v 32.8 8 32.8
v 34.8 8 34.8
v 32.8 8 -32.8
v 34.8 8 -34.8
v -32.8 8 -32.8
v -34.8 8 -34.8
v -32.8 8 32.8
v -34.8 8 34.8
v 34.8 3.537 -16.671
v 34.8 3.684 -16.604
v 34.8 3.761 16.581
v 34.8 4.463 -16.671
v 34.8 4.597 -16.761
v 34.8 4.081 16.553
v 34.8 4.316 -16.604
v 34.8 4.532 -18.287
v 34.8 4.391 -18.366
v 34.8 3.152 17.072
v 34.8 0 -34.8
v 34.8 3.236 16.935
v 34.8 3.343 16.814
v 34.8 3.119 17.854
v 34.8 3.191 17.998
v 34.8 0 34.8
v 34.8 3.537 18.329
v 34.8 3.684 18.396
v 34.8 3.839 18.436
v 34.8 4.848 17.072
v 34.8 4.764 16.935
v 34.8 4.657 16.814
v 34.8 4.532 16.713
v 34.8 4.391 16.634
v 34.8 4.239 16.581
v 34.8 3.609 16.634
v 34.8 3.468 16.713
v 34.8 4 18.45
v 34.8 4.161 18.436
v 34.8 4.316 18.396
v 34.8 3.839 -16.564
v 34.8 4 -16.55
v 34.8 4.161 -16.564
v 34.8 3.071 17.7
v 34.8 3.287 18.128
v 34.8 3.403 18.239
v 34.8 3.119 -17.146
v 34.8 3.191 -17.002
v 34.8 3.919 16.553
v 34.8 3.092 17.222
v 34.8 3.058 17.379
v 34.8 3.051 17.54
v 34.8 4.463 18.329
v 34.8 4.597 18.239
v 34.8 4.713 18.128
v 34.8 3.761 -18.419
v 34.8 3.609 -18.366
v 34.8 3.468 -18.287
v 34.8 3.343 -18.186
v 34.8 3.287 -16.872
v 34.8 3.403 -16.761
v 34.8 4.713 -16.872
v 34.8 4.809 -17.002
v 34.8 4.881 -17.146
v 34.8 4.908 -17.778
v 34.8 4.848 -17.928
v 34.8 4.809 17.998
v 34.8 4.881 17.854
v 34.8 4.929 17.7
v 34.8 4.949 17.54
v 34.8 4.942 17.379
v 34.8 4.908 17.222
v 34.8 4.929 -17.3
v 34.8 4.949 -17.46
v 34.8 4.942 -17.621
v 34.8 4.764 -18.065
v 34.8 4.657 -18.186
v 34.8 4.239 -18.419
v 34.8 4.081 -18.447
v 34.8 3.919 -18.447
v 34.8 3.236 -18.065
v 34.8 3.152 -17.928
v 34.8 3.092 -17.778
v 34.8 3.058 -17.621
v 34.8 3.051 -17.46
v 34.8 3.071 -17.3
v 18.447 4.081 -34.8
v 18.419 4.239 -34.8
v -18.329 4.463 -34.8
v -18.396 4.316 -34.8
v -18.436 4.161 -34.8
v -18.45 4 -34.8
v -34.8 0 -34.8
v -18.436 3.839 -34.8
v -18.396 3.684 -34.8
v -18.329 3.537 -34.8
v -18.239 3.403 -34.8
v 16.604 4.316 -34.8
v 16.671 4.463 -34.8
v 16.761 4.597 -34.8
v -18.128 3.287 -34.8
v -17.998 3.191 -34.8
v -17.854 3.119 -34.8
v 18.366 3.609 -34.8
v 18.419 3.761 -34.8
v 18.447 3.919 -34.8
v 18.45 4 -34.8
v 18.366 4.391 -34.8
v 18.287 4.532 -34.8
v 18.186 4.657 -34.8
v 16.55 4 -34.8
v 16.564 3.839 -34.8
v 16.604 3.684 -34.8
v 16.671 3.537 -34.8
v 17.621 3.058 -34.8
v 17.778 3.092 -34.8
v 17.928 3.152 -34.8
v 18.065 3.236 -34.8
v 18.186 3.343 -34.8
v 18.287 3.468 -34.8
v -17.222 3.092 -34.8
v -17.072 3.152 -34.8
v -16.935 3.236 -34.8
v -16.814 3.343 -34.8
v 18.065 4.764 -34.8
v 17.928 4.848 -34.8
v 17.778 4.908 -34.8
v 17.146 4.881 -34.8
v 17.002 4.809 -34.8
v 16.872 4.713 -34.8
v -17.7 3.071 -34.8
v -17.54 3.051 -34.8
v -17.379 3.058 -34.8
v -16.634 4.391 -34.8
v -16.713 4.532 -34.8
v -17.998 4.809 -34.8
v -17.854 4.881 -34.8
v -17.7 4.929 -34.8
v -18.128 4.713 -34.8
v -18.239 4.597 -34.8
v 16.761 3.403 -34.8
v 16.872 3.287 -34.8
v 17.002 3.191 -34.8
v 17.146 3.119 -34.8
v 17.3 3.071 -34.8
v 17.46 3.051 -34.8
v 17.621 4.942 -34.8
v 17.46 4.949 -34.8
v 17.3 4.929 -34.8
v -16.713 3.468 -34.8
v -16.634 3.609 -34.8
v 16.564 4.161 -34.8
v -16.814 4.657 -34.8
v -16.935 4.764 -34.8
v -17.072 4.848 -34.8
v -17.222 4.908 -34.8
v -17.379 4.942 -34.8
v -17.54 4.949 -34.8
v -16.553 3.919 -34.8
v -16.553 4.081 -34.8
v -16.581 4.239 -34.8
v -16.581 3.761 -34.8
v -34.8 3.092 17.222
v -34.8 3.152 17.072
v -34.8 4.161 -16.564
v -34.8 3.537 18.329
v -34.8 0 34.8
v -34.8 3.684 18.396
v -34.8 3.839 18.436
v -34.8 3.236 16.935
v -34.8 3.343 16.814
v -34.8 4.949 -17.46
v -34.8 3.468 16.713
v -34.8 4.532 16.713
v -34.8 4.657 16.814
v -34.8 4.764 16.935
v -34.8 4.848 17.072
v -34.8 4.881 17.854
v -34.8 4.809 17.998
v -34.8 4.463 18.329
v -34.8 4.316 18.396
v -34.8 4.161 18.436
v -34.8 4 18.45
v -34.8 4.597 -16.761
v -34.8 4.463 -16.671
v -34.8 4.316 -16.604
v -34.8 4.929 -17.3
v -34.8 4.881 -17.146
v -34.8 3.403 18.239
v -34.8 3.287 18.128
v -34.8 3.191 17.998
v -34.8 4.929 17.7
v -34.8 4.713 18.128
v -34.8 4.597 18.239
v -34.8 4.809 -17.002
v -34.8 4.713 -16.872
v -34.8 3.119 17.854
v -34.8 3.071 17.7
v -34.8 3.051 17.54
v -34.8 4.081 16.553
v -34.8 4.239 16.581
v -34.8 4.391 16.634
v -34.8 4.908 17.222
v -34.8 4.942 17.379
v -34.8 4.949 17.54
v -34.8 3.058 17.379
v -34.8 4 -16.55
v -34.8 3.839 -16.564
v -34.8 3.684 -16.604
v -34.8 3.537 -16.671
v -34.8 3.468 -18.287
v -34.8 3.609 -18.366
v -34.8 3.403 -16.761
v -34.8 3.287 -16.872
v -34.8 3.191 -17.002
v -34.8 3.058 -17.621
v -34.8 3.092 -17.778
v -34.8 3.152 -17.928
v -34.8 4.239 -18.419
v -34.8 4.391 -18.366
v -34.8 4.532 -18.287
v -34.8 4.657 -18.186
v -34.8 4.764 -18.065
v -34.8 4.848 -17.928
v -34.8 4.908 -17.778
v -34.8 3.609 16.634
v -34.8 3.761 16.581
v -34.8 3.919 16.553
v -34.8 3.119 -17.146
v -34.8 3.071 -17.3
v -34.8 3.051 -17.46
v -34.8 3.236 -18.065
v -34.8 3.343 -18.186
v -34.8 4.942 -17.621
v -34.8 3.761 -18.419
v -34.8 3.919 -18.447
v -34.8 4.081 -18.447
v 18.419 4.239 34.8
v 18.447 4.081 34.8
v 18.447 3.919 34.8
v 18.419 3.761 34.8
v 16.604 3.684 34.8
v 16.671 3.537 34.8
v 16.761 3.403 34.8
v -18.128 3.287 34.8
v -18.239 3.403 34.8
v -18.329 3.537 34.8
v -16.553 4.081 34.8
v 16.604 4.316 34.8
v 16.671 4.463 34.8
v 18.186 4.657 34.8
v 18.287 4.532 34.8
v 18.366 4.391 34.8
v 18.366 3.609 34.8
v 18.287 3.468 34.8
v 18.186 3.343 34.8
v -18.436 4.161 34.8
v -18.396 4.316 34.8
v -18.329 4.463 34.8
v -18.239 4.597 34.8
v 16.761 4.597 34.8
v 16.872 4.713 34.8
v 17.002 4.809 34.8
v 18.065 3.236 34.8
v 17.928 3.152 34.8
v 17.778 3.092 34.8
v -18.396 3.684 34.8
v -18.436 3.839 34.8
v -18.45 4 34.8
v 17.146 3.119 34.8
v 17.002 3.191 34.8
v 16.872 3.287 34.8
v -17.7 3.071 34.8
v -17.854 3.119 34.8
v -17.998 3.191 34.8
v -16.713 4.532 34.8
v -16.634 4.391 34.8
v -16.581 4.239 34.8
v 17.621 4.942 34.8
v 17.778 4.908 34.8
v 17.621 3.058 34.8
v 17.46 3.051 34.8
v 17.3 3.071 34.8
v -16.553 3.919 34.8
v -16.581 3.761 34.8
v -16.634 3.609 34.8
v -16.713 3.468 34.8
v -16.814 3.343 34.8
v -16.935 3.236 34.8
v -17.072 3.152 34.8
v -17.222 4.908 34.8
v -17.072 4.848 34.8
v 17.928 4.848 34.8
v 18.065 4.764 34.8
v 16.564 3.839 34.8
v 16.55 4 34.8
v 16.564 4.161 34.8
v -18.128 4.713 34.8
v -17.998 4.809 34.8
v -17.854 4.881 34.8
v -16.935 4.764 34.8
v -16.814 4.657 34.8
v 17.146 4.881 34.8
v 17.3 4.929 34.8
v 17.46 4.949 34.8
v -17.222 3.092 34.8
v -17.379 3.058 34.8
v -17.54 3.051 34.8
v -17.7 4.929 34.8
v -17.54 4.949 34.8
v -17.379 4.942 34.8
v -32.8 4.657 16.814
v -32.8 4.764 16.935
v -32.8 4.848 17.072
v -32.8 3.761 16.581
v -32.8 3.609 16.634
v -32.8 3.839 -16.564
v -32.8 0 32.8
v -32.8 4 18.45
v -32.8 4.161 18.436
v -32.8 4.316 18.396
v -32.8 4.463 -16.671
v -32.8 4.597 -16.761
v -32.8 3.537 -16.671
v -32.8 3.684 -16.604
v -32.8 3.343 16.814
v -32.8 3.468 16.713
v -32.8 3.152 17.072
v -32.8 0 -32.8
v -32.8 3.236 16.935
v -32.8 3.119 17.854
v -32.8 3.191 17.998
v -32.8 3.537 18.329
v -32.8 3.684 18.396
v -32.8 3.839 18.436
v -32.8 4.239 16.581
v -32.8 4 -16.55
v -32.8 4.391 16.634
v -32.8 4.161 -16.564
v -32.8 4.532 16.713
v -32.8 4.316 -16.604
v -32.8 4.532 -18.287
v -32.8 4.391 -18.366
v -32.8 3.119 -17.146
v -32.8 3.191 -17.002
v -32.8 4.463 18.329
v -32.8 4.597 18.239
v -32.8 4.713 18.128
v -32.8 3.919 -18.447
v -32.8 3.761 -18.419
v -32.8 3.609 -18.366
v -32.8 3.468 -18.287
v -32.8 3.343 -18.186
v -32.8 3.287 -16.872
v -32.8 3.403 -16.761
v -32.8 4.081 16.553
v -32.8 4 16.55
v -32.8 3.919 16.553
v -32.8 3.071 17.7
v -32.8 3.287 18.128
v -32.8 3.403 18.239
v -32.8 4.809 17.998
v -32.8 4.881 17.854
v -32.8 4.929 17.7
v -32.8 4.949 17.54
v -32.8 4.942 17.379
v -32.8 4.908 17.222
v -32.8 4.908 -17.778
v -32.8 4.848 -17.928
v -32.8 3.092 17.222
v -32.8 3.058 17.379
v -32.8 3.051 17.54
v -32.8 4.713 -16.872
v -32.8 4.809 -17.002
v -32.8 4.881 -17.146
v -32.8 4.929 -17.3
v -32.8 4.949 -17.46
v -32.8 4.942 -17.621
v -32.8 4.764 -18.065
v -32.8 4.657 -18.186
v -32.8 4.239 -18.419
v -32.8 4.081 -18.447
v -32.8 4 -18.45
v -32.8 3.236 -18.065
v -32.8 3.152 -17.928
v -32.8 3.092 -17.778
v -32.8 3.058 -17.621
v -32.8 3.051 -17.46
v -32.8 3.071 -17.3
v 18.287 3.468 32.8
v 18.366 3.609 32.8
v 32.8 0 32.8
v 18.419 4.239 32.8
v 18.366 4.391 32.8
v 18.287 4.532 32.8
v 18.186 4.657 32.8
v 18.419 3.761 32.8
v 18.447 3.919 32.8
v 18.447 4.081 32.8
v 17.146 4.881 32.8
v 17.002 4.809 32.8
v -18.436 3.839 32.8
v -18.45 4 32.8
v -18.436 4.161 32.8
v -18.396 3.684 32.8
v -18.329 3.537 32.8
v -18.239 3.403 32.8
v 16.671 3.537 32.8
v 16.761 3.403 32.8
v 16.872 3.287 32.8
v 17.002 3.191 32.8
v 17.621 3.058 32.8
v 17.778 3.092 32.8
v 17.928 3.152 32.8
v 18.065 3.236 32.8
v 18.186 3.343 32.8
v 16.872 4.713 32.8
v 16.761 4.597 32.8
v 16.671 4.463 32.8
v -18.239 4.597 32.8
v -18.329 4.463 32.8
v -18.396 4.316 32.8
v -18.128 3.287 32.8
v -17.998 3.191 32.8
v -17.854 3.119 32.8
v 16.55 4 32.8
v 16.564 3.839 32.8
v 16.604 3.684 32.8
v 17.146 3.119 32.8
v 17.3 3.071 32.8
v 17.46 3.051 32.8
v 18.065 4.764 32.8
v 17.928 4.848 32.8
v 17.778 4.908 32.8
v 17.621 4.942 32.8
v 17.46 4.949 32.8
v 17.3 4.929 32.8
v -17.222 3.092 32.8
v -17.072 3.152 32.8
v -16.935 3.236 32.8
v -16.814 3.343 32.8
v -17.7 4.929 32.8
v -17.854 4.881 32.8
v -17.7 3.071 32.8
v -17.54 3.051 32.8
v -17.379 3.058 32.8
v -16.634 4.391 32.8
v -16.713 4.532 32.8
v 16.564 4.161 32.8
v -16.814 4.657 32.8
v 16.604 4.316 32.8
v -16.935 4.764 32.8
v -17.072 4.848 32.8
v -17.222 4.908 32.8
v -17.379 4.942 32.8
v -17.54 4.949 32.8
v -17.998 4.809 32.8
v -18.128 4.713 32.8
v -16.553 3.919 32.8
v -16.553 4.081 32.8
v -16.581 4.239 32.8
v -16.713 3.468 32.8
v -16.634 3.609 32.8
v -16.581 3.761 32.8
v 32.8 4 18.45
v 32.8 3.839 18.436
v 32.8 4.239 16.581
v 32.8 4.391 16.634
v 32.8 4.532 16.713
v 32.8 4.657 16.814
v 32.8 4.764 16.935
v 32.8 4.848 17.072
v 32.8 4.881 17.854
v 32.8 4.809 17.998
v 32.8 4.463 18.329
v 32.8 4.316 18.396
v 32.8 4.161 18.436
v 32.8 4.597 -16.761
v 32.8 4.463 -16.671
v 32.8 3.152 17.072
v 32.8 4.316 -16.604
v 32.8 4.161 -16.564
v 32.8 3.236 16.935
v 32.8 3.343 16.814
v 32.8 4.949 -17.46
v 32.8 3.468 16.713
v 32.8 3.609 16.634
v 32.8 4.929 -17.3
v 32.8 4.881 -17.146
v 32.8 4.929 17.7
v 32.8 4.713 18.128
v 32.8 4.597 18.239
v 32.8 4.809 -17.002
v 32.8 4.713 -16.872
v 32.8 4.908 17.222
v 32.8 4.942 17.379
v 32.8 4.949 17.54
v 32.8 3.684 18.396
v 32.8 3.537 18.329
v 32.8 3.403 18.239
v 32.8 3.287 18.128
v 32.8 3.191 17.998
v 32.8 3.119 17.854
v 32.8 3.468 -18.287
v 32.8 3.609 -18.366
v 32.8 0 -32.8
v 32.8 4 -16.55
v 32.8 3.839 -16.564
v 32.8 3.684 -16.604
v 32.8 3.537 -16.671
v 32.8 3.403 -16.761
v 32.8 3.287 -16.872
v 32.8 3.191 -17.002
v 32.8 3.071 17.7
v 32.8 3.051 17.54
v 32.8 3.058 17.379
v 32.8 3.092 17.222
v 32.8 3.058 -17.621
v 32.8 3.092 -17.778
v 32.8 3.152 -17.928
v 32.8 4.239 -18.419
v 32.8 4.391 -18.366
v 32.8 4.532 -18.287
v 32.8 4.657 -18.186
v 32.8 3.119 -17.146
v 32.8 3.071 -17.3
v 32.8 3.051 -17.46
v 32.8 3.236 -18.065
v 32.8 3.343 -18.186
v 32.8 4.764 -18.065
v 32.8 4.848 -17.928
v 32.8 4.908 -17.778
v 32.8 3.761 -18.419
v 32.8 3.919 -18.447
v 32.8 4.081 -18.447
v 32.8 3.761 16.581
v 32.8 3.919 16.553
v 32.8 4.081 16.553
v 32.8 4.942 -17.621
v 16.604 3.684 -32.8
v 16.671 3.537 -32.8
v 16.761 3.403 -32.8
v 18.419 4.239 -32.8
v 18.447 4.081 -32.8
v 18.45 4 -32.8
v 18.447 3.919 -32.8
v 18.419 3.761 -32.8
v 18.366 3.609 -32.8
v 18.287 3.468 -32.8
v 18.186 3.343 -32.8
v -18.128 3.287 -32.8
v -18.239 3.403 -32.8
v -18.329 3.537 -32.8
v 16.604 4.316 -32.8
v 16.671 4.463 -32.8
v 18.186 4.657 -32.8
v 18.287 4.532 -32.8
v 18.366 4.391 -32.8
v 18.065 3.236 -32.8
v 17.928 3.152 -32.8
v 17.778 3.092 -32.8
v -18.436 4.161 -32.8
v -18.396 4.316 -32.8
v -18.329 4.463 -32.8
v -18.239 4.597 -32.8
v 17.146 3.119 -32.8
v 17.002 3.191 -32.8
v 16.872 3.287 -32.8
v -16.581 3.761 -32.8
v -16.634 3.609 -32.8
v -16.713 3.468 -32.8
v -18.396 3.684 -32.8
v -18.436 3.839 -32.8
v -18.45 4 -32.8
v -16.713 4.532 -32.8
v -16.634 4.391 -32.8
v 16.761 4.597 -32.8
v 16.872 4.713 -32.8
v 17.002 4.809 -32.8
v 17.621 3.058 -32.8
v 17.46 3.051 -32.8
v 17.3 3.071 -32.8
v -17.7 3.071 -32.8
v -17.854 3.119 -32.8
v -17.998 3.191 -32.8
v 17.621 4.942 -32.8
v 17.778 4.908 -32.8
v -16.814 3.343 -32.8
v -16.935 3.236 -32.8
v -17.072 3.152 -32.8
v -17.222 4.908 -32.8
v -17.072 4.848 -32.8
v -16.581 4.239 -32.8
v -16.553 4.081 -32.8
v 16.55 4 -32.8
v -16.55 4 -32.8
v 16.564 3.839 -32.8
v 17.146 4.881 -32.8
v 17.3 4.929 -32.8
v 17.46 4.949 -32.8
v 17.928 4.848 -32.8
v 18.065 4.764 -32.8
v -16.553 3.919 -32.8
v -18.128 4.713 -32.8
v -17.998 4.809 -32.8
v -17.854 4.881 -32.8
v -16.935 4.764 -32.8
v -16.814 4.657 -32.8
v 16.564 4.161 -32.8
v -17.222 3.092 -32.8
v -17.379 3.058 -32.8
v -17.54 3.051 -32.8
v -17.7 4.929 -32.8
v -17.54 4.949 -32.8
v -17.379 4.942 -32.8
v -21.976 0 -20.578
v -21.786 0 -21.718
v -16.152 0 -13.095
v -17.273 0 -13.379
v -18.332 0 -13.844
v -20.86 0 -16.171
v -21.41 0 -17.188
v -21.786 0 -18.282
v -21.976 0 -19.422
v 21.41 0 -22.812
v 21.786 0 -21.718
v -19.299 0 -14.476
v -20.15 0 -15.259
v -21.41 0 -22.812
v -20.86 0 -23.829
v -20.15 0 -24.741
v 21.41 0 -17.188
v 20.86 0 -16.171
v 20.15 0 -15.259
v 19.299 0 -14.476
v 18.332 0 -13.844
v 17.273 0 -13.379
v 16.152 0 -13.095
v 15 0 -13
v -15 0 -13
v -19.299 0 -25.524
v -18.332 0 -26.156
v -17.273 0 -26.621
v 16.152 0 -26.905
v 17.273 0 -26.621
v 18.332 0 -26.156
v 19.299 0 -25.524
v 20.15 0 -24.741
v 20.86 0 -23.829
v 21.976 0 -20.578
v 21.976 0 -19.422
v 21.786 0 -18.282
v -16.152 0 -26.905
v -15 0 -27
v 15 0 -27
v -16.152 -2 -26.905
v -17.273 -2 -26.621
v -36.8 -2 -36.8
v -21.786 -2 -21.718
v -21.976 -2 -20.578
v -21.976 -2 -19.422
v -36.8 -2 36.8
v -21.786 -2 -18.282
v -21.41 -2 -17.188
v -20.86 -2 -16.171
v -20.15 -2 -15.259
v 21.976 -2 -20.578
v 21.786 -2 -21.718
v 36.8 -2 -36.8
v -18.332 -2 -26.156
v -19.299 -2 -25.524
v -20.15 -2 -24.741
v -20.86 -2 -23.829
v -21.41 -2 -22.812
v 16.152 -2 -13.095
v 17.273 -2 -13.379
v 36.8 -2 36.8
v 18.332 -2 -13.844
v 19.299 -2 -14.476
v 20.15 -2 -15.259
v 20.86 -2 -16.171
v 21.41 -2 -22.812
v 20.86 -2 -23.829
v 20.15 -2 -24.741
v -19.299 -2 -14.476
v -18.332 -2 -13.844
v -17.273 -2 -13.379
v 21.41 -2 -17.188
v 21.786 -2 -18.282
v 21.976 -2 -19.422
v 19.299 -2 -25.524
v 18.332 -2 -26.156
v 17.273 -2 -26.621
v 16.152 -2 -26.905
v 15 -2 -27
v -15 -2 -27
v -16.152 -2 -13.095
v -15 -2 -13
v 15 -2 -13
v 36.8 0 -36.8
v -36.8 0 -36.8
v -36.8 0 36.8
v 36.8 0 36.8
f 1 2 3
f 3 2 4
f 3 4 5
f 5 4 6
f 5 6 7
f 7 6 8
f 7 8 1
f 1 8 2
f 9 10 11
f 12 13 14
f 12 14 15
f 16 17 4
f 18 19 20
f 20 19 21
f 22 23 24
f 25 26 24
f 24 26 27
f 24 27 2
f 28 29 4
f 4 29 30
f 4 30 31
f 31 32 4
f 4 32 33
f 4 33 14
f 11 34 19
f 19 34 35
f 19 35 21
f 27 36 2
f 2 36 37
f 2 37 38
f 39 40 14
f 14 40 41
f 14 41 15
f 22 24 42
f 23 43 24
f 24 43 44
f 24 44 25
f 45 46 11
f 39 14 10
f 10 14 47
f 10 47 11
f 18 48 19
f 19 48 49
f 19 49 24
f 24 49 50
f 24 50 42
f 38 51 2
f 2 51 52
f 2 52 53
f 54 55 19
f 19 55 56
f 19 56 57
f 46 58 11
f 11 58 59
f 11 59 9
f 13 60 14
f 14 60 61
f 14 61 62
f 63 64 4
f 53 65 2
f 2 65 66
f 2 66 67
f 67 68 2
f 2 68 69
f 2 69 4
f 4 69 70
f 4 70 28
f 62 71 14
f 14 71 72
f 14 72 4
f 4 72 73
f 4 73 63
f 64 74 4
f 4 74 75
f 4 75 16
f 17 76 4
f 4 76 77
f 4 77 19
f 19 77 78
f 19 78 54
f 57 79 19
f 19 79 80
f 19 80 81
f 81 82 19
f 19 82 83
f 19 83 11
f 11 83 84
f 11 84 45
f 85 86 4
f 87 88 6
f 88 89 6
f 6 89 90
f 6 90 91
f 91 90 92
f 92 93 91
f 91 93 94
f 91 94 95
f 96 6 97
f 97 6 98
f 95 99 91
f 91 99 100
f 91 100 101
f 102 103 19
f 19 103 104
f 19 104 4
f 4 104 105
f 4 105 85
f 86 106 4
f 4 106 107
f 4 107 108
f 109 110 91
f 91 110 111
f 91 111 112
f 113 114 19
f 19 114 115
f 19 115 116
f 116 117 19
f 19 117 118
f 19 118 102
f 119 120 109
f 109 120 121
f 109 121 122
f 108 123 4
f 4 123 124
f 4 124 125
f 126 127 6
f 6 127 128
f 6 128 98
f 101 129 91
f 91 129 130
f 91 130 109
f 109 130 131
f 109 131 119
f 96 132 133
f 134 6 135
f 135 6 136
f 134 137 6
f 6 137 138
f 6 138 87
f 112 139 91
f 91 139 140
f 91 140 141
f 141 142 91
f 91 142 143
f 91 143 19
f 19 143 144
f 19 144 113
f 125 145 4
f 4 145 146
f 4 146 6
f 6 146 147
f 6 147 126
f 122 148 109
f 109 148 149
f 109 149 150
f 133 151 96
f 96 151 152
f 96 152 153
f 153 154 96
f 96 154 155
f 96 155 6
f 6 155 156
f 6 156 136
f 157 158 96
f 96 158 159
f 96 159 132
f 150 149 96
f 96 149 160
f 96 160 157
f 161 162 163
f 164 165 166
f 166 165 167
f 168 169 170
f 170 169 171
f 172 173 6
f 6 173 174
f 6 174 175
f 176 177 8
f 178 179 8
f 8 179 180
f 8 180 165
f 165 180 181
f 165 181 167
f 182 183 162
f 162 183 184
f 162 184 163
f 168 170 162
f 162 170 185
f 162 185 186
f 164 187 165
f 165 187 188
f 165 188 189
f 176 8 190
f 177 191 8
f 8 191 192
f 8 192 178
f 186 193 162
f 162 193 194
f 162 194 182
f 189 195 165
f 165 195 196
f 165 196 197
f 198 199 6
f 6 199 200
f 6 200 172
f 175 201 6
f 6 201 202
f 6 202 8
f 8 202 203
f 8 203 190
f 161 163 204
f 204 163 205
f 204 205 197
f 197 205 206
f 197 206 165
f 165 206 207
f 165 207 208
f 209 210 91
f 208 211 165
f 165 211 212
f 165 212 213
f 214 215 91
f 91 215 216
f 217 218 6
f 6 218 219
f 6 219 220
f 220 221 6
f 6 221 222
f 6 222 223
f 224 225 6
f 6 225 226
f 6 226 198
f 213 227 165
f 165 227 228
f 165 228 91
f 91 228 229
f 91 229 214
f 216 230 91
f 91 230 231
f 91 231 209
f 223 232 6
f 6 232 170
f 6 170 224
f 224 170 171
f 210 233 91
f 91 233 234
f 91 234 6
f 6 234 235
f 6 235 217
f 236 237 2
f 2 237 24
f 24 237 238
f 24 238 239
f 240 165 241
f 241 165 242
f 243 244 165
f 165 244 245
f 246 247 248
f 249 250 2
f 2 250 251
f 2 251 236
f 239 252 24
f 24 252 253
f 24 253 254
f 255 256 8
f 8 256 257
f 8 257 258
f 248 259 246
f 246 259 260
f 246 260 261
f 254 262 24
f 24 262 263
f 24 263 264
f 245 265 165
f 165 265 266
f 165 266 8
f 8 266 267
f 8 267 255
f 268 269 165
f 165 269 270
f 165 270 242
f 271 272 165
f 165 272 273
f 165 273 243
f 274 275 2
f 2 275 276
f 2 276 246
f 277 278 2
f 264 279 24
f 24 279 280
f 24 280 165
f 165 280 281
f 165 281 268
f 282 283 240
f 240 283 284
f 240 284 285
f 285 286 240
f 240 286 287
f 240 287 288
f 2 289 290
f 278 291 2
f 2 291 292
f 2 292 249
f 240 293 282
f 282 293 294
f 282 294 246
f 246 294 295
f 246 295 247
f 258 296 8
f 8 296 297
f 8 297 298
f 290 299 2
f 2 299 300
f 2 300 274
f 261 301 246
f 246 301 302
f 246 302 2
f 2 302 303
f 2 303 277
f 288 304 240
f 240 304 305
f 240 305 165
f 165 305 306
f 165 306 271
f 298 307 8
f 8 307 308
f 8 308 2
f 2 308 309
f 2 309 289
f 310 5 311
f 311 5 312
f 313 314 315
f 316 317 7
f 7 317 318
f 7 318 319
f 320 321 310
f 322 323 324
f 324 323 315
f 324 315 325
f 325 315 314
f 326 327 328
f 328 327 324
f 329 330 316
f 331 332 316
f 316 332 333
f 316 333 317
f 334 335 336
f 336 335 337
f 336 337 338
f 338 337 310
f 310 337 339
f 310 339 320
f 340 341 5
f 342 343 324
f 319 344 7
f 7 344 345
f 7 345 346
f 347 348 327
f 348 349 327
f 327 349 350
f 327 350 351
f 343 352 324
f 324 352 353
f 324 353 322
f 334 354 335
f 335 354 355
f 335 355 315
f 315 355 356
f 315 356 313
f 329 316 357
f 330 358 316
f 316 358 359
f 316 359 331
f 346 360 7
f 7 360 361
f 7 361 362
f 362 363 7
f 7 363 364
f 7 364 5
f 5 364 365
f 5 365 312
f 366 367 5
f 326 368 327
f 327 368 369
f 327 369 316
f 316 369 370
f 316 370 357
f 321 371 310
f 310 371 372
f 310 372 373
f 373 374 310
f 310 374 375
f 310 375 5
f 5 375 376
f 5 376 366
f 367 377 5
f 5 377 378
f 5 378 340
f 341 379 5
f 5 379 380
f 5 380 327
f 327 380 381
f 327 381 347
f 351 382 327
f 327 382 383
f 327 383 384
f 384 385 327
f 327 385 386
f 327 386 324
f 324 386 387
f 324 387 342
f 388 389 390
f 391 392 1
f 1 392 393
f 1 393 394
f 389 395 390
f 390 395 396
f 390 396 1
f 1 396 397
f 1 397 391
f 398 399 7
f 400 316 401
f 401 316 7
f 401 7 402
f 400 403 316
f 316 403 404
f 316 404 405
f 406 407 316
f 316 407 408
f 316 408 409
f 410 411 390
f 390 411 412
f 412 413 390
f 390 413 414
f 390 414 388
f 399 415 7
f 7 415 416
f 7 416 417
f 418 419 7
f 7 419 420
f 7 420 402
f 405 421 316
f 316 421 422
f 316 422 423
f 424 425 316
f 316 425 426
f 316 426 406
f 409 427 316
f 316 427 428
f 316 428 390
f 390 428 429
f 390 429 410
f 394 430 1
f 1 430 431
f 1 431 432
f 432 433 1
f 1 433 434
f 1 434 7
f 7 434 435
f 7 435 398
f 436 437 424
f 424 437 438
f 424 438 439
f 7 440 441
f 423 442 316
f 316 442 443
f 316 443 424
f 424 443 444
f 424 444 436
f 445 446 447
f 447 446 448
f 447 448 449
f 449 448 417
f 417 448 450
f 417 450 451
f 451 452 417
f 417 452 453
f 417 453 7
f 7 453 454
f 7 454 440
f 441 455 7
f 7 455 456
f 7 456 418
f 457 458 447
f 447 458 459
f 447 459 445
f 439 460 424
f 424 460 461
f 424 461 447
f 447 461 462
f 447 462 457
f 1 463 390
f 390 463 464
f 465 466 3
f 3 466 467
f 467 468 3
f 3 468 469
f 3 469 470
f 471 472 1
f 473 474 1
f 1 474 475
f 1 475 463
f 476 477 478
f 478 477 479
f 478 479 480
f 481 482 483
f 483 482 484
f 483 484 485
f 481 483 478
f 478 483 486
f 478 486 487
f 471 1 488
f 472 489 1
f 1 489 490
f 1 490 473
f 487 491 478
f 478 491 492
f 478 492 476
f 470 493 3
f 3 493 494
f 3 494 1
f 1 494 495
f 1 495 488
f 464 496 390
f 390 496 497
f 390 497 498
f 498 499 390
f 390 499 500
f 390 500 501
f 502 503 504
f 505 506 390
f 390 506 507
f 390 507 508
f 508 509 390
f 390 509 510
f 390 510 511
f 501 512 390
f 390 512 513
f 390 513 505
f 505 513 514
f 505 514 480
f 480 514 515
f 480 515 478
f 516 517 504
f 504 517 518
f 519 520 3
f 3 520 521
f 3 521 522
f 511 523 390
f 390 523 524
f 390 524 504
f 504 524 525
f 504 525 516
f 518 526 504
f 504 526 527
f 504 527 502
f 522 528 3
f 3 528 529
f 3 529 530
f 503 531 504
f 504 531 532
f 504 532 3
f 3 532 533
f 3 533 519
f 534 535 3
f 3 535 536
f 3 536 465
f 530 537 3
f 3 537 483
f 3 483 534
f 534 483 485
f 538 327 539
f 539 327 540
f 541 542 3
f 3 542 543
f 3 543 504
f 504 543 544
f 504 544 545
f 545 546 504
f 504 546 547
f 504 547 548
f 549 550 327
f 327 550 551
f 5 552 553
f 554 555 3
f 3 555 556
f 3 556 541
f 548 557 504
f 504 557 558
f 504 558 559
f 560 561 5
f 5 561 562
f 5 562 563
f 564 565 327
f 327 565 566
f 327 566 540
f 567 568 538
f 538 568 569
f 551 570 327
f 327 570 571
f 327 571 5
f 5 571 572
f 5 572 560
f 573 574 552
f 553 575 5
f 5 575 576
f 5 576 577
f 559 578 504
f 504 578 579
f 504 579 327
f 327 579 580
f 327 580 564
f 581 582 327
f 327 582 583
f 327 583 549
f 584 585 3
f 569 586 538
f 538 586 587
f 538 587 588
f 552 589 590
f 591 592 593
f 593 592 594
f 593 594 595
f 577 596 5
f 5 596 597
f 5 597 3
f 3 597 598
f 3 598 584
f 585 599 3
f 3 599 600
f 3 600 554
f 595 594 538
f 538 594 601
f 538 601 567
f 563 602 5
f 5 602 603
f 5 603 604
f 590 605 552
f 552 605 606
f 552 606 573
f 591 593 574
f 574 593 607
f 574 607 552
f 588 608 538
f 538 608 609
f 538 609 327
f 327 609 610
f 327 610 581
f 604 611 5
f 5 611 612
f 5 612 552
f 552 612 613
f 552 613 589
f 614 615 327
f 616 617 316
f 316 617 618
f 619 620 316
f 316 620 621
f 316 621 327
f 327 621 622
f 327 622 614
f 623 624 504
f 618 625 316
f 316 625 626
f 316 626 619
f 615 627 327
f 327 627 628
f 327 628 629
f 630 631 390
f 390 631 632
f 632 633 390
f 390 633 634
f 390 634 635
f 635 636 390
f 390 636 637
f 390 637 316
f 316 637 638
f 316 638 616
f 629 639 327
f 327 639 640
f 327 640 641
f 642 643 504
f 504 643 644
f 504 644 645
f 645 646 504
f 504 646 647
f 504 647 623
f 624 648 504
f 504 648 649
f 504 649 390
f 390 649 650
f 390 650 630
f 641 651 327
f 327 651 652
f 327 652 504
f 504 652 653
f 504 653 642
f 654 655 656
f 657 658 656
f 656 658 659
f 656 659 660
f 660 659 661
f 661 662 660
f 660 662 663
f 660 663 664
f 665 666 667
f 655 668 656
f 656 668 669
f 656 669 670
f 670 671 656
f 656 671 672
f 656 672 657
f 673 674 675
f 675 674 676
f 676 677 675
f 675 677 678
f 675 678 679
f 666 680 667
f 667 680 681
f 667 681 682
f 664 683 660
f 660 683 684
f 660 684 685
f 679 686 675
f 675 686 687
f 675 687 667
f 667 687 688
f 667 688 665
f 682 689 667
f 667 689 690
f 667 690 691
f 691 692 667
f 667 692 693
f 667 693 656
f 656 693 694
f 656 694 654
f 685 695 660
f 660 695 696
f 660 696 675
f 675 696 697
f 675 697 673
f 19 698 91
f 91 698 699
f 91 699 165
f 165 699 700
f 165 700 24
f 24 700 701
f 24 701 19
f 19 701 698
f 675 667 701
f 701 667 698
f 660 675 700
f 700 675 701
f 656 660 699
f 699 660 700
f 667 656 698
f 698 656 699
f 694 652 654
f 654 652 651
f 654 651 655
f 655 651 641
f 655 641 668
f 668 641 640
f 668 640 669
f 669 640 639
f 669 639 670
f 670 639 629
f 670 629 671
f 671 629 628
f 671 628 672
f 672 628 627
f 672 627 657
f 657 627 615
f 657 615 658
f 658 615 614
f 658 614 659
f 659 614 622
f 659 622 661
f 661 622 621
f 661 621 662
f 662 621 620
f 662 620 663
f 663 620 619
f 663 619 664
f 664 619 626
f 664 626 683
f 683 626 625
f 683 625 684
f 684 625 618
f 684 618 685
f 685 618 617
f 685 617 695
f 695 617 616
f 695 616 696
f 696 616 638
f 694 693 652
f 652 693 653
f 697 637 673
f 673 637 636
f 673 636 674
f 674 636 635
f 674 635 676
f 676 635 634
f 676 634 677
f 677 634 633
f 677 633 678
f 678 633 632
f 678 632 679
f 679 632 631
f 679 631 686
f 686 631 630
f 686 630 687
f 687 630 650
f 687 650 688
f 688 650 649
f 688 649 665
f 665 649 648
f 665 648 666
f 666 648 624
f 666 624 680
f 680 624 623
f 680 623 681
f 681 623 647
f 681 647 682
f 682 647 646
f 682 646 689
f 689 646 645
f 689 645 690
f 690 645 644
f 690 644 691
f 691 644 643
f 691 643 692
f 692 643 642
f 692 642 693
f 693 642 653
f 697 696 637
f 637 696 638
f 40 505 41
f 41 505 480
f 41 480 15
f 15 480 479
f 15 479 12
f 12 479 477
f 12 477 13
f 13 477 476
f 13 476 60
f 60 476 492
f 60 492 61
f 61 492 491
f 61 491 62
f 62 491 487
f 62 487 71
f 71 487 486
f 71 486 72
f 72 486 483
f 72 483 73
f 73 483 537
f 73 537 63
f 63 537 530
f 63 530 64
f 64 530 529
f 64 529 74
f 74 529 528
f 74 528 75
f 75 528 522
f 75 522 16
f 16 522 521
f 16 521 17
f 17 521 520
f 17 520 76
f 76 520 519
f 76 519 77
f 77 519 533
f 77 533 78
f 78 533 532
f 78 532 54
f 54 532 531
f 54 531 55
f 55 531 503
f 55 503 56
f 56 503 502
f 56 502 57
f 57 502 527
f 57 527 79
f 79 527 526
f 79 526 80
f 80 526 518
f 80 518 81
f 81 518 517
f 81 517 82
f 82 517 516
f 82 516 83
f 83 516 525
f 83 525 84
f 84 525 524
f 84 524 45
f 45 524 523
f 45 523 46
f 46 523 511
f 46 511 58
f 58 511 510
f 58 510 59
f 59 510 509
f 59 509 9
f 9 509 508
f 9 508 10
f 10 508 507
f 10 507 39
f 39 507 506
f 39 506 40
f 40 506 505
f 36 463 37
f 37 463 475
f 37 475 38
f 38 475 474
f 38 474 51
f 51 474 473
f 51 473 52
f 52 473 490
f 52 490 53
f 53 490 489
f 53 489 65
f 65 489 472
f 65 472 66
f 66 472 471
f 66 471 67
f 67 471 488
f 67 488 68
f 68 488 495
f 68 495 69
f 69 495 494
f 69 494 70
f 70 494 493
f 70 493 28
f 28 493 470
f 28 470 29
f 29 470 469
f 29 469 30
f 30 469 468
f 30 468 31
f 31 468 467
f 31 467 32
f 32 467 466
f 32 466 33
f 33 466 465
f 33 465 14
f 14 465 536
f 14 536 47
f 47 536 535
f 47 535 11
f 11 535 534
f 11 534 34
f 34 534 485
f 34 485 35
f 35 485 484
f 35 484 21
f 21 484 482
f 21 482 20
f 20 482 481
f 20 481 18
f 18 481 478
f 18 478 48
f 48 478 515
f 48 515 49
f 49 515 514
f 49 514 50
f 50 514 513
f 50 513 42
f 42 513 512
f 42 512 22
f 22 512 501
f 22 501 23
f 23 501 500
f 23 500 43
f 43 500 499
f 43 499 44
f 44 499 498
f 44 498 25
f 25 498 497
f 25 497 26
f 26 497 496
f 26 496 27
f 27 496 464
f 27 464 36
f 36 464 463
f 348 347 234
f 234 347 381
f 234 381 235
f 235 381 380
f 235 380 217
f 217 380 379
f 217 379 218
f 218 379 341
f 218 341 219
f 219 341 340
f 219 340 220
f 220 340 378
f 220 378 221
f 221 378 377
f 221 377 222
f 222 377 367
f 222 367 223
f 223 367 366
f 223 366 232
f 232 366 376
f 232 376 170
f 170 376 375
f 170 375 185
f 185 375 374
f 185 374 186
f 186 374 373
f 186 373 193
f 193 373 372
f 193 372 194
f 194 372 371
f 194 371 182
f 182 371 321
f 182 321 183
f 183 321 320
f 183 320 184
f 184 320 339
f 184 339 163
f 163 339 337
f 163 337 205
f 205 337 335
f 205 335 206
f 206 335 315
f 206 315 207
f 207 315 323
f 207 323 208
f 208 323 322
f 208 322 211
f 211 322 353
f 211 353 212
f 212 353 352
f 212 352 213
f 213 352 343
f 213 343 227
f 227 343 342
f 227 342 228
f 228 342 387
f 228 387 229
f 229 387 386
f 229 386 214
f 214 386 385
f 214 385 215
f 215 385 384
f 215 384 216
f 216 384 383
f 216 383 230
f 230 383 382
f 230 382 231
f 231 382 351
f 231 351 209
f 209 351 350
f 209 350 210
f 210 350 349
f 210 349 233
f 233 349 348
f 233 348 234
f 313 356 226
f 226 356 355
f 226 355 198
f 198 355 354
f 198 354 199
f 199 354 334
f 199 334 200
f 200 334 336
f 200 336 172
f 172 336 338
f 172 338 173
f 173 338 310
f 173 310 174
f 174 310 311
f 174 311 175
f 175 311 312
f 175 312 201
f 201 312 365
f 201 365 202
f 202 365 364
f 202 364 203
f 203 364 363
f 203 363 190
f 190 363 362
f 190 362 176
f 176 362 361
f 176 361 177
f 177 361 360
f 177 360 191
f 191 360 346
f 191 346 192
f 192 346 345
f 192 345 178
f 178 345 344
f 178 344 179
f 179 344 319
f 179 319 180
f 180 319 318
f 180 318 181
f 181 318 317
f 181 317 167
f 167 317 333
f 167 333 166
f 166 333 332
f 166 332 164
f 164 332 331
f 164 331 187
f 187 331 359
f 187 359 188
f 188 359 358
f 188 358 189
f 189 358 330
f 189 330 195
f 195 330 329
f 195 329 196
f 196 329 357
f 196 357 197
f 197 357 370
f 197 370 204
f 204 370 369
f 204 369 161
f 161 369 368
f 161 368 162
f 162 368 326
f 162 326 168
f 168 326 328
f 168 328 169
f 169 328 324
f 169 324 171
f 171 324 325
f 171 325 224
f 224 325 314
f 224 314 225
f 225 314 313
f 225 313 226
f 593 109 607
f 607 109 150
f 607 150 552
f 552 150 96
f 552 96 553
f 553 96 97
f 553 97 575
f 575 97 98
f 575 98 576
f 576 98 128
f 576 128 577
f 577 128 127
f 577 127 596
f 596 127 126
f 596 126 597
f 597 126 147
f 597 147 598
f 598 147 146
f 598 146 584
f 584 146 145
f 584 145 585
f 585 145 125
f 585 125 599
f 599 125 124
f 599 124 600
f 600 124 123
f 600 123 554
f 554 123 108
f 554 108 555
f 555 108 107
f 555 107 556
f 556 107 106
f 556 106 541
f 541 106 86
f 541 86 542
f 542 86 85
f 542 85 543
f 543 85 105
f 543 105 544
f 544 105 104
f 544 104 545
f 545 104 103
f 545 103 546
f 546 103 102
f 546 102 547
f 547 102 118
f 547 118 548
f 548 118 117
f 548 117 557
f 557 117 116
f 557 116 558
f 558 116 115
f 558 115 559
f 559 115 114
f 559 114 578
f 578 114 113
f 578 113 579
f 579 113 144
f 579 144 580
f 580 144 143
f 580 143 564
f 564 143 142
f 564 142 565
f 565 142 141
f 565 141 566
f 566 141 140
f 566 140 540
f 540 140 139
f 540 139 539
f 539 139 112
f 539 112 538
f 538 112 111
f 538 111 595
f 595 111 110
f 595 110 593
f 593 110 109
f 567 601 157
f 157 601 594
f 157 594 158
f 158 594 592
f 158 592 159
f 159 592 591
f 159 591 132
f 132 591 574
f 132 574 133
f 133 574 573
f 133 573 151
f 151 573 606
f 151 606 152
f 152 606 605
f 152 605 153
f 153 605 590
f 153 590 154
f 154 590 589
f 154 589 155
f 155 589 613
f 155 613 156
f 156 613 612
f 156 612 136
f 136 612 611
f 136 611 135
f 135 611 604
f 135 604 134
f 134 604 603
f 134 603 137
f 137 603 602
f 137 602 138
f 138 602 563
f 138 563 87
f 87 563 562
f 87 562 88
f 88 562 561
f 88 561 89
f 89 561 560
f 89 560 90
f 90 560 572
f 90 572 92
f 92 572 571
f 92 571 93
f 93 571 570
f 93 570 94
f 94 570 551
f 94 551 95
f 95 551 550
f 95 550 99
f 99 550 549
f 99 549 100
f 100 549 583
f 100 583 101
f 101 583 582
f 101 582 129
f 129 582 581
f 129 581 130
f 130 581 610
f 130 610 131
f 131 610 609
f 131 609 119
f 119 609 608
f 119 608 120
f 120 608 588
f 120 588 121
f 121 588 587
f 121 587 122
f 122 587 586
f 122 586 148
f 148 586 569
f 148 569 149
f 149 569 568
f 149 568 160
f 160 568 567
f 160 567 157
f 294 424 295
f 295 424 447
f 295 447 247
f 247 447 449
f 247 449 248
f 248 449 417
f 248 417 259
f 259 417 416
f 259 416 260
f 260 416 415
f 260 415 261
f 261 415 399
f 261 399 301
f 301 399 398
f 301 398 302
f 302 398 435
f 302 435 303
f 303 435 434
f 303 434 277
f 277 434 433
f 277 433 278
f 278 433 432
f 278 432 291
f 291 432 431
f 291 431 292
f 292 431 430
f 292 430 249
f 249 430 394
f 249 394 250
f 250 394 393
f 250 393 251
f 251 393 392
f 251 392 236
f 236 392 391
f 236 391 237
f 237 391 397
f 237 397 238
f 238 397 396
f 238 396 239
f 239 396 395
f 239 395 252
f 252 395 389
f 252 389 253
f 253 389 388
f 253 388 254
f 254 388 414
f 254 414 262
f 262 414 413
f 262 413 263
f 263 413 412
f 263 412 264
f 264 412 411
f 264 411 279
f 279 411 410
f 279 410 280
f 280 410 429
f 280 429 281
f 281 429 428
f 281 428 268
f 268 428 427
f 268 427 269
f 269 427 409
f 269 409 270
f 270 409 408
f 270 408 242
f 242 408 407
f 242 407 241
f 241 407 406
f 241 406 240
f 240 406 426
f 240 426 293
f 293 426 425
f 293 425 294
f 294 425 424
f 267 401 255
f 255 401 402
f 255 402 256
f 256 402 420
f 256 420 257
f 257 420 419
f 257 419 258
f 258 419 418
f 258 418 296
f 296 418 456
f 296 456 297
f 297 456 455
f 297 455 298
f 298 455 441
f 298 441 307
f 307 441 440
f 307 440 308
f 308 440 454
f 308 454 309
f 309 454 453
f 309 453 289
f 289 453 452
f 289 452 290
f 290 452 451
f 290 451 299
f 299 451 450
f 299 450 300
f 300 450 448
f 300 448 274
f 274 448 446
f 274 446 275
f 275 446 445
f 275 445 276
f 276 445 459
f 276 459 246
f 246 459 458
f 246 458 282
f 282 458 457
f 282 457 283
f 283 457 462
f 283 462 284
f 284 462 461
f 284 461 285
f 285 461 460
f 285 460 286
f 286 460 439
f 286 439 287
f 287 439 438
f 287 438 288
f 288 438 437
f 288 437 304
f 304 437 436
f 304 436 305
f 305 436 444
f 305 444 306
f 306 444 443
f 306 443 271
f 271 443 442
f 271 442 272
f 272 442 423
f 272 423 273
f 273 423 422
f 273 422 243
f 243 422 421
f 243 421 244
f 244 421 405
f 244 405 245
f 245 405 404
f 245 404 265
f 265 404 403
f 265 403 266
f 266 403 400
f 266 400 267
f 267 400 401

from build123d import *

# Parameters (mm, degrees)
SKETCH_1_W          = 69.6
SKETCH_1_H          = 69.6
SKETCH_1_W_2        = 65.6
SKETCH_1_H_2        = 65.6
EXTRUDE_1_DEPTH     = 8
SKETCH_2_W          = 73.6
SKETCH_2_H          = 73.6
EXTRUDE_2_DEPTH     = 2
SKETCH_3_R          = 0.95
CUT_EXTRUDE_1_DEPTH = 81.899938195
SKETCH_4_R          = 0.95
CUT_EXTRUDE_2_DEPTH = 81.899938195


with BuildPart() as part:
    # 草图1 → 凸台-拉伸1 (new body)
    with BuildSketch(Plane(origin=(0, 0, 0), x_dir=(1, 0, 0), z_dir=(0, 1, 0))):
        Rectangle(SKETCH_1_W, SKETCH_1_H)
        Rectangle(SKETCH_1_W_2, SKETCH_1_H_2, mode=Mode.SUBTRACT)
    extrude(amount=EXTRUDE_1_DEPTH)

    # 草图2 → 凸台-拉伸2 (add)
    with BuildSketch(Plane.XZ):
        Rectangle(SKETCH_2_W, SKETCH_2_H)
        with BuildLine():
            Line((-15, -13), (15, -13))
            ThreePointArc((15, -13), (22, -20), (15, -27))
            Line((15, -27), (-15, -27))
            ThreePointArc((-15, -27), (-22, -20), (-15, -13))
        make_face(mode=Mode.SUBTRACT)
    extrude(amount=EXTRUDE_2_DEPTH)

    # 草图3 → 切除-拉伸1 (cut, through all)
    with BuildSketch(Plane.ZY.offset(34.8)):
        with Locations((17.5, 4)):
            Circle(SKETCH_3_R)
        with Locations((-17.5, 4)):
            Circle(SKETCH_3_R)
    extrude(amount=-CUT_EXTRUDE_1_DEPTH, mode=Mode.SUBTRACT)

    # 草图4 → 切除-拉伸2 (cut, through all)
    with BuildSketch(Plane(origin=(0, 0, -34.8), x_dir=(-1, 0, 0), z_dir=(0, 0, -1))):
        with Locations((17.5, 4)):
            Circle(SKETCH_4_R)
        with Locations((-17.5, 4)):
            Circle(SKETCH_4_R)
    extrude(amount=-CUT_EXTRUDE_2_DEPTH, mode=Mode.SUBTRACT)


solid = part.part
